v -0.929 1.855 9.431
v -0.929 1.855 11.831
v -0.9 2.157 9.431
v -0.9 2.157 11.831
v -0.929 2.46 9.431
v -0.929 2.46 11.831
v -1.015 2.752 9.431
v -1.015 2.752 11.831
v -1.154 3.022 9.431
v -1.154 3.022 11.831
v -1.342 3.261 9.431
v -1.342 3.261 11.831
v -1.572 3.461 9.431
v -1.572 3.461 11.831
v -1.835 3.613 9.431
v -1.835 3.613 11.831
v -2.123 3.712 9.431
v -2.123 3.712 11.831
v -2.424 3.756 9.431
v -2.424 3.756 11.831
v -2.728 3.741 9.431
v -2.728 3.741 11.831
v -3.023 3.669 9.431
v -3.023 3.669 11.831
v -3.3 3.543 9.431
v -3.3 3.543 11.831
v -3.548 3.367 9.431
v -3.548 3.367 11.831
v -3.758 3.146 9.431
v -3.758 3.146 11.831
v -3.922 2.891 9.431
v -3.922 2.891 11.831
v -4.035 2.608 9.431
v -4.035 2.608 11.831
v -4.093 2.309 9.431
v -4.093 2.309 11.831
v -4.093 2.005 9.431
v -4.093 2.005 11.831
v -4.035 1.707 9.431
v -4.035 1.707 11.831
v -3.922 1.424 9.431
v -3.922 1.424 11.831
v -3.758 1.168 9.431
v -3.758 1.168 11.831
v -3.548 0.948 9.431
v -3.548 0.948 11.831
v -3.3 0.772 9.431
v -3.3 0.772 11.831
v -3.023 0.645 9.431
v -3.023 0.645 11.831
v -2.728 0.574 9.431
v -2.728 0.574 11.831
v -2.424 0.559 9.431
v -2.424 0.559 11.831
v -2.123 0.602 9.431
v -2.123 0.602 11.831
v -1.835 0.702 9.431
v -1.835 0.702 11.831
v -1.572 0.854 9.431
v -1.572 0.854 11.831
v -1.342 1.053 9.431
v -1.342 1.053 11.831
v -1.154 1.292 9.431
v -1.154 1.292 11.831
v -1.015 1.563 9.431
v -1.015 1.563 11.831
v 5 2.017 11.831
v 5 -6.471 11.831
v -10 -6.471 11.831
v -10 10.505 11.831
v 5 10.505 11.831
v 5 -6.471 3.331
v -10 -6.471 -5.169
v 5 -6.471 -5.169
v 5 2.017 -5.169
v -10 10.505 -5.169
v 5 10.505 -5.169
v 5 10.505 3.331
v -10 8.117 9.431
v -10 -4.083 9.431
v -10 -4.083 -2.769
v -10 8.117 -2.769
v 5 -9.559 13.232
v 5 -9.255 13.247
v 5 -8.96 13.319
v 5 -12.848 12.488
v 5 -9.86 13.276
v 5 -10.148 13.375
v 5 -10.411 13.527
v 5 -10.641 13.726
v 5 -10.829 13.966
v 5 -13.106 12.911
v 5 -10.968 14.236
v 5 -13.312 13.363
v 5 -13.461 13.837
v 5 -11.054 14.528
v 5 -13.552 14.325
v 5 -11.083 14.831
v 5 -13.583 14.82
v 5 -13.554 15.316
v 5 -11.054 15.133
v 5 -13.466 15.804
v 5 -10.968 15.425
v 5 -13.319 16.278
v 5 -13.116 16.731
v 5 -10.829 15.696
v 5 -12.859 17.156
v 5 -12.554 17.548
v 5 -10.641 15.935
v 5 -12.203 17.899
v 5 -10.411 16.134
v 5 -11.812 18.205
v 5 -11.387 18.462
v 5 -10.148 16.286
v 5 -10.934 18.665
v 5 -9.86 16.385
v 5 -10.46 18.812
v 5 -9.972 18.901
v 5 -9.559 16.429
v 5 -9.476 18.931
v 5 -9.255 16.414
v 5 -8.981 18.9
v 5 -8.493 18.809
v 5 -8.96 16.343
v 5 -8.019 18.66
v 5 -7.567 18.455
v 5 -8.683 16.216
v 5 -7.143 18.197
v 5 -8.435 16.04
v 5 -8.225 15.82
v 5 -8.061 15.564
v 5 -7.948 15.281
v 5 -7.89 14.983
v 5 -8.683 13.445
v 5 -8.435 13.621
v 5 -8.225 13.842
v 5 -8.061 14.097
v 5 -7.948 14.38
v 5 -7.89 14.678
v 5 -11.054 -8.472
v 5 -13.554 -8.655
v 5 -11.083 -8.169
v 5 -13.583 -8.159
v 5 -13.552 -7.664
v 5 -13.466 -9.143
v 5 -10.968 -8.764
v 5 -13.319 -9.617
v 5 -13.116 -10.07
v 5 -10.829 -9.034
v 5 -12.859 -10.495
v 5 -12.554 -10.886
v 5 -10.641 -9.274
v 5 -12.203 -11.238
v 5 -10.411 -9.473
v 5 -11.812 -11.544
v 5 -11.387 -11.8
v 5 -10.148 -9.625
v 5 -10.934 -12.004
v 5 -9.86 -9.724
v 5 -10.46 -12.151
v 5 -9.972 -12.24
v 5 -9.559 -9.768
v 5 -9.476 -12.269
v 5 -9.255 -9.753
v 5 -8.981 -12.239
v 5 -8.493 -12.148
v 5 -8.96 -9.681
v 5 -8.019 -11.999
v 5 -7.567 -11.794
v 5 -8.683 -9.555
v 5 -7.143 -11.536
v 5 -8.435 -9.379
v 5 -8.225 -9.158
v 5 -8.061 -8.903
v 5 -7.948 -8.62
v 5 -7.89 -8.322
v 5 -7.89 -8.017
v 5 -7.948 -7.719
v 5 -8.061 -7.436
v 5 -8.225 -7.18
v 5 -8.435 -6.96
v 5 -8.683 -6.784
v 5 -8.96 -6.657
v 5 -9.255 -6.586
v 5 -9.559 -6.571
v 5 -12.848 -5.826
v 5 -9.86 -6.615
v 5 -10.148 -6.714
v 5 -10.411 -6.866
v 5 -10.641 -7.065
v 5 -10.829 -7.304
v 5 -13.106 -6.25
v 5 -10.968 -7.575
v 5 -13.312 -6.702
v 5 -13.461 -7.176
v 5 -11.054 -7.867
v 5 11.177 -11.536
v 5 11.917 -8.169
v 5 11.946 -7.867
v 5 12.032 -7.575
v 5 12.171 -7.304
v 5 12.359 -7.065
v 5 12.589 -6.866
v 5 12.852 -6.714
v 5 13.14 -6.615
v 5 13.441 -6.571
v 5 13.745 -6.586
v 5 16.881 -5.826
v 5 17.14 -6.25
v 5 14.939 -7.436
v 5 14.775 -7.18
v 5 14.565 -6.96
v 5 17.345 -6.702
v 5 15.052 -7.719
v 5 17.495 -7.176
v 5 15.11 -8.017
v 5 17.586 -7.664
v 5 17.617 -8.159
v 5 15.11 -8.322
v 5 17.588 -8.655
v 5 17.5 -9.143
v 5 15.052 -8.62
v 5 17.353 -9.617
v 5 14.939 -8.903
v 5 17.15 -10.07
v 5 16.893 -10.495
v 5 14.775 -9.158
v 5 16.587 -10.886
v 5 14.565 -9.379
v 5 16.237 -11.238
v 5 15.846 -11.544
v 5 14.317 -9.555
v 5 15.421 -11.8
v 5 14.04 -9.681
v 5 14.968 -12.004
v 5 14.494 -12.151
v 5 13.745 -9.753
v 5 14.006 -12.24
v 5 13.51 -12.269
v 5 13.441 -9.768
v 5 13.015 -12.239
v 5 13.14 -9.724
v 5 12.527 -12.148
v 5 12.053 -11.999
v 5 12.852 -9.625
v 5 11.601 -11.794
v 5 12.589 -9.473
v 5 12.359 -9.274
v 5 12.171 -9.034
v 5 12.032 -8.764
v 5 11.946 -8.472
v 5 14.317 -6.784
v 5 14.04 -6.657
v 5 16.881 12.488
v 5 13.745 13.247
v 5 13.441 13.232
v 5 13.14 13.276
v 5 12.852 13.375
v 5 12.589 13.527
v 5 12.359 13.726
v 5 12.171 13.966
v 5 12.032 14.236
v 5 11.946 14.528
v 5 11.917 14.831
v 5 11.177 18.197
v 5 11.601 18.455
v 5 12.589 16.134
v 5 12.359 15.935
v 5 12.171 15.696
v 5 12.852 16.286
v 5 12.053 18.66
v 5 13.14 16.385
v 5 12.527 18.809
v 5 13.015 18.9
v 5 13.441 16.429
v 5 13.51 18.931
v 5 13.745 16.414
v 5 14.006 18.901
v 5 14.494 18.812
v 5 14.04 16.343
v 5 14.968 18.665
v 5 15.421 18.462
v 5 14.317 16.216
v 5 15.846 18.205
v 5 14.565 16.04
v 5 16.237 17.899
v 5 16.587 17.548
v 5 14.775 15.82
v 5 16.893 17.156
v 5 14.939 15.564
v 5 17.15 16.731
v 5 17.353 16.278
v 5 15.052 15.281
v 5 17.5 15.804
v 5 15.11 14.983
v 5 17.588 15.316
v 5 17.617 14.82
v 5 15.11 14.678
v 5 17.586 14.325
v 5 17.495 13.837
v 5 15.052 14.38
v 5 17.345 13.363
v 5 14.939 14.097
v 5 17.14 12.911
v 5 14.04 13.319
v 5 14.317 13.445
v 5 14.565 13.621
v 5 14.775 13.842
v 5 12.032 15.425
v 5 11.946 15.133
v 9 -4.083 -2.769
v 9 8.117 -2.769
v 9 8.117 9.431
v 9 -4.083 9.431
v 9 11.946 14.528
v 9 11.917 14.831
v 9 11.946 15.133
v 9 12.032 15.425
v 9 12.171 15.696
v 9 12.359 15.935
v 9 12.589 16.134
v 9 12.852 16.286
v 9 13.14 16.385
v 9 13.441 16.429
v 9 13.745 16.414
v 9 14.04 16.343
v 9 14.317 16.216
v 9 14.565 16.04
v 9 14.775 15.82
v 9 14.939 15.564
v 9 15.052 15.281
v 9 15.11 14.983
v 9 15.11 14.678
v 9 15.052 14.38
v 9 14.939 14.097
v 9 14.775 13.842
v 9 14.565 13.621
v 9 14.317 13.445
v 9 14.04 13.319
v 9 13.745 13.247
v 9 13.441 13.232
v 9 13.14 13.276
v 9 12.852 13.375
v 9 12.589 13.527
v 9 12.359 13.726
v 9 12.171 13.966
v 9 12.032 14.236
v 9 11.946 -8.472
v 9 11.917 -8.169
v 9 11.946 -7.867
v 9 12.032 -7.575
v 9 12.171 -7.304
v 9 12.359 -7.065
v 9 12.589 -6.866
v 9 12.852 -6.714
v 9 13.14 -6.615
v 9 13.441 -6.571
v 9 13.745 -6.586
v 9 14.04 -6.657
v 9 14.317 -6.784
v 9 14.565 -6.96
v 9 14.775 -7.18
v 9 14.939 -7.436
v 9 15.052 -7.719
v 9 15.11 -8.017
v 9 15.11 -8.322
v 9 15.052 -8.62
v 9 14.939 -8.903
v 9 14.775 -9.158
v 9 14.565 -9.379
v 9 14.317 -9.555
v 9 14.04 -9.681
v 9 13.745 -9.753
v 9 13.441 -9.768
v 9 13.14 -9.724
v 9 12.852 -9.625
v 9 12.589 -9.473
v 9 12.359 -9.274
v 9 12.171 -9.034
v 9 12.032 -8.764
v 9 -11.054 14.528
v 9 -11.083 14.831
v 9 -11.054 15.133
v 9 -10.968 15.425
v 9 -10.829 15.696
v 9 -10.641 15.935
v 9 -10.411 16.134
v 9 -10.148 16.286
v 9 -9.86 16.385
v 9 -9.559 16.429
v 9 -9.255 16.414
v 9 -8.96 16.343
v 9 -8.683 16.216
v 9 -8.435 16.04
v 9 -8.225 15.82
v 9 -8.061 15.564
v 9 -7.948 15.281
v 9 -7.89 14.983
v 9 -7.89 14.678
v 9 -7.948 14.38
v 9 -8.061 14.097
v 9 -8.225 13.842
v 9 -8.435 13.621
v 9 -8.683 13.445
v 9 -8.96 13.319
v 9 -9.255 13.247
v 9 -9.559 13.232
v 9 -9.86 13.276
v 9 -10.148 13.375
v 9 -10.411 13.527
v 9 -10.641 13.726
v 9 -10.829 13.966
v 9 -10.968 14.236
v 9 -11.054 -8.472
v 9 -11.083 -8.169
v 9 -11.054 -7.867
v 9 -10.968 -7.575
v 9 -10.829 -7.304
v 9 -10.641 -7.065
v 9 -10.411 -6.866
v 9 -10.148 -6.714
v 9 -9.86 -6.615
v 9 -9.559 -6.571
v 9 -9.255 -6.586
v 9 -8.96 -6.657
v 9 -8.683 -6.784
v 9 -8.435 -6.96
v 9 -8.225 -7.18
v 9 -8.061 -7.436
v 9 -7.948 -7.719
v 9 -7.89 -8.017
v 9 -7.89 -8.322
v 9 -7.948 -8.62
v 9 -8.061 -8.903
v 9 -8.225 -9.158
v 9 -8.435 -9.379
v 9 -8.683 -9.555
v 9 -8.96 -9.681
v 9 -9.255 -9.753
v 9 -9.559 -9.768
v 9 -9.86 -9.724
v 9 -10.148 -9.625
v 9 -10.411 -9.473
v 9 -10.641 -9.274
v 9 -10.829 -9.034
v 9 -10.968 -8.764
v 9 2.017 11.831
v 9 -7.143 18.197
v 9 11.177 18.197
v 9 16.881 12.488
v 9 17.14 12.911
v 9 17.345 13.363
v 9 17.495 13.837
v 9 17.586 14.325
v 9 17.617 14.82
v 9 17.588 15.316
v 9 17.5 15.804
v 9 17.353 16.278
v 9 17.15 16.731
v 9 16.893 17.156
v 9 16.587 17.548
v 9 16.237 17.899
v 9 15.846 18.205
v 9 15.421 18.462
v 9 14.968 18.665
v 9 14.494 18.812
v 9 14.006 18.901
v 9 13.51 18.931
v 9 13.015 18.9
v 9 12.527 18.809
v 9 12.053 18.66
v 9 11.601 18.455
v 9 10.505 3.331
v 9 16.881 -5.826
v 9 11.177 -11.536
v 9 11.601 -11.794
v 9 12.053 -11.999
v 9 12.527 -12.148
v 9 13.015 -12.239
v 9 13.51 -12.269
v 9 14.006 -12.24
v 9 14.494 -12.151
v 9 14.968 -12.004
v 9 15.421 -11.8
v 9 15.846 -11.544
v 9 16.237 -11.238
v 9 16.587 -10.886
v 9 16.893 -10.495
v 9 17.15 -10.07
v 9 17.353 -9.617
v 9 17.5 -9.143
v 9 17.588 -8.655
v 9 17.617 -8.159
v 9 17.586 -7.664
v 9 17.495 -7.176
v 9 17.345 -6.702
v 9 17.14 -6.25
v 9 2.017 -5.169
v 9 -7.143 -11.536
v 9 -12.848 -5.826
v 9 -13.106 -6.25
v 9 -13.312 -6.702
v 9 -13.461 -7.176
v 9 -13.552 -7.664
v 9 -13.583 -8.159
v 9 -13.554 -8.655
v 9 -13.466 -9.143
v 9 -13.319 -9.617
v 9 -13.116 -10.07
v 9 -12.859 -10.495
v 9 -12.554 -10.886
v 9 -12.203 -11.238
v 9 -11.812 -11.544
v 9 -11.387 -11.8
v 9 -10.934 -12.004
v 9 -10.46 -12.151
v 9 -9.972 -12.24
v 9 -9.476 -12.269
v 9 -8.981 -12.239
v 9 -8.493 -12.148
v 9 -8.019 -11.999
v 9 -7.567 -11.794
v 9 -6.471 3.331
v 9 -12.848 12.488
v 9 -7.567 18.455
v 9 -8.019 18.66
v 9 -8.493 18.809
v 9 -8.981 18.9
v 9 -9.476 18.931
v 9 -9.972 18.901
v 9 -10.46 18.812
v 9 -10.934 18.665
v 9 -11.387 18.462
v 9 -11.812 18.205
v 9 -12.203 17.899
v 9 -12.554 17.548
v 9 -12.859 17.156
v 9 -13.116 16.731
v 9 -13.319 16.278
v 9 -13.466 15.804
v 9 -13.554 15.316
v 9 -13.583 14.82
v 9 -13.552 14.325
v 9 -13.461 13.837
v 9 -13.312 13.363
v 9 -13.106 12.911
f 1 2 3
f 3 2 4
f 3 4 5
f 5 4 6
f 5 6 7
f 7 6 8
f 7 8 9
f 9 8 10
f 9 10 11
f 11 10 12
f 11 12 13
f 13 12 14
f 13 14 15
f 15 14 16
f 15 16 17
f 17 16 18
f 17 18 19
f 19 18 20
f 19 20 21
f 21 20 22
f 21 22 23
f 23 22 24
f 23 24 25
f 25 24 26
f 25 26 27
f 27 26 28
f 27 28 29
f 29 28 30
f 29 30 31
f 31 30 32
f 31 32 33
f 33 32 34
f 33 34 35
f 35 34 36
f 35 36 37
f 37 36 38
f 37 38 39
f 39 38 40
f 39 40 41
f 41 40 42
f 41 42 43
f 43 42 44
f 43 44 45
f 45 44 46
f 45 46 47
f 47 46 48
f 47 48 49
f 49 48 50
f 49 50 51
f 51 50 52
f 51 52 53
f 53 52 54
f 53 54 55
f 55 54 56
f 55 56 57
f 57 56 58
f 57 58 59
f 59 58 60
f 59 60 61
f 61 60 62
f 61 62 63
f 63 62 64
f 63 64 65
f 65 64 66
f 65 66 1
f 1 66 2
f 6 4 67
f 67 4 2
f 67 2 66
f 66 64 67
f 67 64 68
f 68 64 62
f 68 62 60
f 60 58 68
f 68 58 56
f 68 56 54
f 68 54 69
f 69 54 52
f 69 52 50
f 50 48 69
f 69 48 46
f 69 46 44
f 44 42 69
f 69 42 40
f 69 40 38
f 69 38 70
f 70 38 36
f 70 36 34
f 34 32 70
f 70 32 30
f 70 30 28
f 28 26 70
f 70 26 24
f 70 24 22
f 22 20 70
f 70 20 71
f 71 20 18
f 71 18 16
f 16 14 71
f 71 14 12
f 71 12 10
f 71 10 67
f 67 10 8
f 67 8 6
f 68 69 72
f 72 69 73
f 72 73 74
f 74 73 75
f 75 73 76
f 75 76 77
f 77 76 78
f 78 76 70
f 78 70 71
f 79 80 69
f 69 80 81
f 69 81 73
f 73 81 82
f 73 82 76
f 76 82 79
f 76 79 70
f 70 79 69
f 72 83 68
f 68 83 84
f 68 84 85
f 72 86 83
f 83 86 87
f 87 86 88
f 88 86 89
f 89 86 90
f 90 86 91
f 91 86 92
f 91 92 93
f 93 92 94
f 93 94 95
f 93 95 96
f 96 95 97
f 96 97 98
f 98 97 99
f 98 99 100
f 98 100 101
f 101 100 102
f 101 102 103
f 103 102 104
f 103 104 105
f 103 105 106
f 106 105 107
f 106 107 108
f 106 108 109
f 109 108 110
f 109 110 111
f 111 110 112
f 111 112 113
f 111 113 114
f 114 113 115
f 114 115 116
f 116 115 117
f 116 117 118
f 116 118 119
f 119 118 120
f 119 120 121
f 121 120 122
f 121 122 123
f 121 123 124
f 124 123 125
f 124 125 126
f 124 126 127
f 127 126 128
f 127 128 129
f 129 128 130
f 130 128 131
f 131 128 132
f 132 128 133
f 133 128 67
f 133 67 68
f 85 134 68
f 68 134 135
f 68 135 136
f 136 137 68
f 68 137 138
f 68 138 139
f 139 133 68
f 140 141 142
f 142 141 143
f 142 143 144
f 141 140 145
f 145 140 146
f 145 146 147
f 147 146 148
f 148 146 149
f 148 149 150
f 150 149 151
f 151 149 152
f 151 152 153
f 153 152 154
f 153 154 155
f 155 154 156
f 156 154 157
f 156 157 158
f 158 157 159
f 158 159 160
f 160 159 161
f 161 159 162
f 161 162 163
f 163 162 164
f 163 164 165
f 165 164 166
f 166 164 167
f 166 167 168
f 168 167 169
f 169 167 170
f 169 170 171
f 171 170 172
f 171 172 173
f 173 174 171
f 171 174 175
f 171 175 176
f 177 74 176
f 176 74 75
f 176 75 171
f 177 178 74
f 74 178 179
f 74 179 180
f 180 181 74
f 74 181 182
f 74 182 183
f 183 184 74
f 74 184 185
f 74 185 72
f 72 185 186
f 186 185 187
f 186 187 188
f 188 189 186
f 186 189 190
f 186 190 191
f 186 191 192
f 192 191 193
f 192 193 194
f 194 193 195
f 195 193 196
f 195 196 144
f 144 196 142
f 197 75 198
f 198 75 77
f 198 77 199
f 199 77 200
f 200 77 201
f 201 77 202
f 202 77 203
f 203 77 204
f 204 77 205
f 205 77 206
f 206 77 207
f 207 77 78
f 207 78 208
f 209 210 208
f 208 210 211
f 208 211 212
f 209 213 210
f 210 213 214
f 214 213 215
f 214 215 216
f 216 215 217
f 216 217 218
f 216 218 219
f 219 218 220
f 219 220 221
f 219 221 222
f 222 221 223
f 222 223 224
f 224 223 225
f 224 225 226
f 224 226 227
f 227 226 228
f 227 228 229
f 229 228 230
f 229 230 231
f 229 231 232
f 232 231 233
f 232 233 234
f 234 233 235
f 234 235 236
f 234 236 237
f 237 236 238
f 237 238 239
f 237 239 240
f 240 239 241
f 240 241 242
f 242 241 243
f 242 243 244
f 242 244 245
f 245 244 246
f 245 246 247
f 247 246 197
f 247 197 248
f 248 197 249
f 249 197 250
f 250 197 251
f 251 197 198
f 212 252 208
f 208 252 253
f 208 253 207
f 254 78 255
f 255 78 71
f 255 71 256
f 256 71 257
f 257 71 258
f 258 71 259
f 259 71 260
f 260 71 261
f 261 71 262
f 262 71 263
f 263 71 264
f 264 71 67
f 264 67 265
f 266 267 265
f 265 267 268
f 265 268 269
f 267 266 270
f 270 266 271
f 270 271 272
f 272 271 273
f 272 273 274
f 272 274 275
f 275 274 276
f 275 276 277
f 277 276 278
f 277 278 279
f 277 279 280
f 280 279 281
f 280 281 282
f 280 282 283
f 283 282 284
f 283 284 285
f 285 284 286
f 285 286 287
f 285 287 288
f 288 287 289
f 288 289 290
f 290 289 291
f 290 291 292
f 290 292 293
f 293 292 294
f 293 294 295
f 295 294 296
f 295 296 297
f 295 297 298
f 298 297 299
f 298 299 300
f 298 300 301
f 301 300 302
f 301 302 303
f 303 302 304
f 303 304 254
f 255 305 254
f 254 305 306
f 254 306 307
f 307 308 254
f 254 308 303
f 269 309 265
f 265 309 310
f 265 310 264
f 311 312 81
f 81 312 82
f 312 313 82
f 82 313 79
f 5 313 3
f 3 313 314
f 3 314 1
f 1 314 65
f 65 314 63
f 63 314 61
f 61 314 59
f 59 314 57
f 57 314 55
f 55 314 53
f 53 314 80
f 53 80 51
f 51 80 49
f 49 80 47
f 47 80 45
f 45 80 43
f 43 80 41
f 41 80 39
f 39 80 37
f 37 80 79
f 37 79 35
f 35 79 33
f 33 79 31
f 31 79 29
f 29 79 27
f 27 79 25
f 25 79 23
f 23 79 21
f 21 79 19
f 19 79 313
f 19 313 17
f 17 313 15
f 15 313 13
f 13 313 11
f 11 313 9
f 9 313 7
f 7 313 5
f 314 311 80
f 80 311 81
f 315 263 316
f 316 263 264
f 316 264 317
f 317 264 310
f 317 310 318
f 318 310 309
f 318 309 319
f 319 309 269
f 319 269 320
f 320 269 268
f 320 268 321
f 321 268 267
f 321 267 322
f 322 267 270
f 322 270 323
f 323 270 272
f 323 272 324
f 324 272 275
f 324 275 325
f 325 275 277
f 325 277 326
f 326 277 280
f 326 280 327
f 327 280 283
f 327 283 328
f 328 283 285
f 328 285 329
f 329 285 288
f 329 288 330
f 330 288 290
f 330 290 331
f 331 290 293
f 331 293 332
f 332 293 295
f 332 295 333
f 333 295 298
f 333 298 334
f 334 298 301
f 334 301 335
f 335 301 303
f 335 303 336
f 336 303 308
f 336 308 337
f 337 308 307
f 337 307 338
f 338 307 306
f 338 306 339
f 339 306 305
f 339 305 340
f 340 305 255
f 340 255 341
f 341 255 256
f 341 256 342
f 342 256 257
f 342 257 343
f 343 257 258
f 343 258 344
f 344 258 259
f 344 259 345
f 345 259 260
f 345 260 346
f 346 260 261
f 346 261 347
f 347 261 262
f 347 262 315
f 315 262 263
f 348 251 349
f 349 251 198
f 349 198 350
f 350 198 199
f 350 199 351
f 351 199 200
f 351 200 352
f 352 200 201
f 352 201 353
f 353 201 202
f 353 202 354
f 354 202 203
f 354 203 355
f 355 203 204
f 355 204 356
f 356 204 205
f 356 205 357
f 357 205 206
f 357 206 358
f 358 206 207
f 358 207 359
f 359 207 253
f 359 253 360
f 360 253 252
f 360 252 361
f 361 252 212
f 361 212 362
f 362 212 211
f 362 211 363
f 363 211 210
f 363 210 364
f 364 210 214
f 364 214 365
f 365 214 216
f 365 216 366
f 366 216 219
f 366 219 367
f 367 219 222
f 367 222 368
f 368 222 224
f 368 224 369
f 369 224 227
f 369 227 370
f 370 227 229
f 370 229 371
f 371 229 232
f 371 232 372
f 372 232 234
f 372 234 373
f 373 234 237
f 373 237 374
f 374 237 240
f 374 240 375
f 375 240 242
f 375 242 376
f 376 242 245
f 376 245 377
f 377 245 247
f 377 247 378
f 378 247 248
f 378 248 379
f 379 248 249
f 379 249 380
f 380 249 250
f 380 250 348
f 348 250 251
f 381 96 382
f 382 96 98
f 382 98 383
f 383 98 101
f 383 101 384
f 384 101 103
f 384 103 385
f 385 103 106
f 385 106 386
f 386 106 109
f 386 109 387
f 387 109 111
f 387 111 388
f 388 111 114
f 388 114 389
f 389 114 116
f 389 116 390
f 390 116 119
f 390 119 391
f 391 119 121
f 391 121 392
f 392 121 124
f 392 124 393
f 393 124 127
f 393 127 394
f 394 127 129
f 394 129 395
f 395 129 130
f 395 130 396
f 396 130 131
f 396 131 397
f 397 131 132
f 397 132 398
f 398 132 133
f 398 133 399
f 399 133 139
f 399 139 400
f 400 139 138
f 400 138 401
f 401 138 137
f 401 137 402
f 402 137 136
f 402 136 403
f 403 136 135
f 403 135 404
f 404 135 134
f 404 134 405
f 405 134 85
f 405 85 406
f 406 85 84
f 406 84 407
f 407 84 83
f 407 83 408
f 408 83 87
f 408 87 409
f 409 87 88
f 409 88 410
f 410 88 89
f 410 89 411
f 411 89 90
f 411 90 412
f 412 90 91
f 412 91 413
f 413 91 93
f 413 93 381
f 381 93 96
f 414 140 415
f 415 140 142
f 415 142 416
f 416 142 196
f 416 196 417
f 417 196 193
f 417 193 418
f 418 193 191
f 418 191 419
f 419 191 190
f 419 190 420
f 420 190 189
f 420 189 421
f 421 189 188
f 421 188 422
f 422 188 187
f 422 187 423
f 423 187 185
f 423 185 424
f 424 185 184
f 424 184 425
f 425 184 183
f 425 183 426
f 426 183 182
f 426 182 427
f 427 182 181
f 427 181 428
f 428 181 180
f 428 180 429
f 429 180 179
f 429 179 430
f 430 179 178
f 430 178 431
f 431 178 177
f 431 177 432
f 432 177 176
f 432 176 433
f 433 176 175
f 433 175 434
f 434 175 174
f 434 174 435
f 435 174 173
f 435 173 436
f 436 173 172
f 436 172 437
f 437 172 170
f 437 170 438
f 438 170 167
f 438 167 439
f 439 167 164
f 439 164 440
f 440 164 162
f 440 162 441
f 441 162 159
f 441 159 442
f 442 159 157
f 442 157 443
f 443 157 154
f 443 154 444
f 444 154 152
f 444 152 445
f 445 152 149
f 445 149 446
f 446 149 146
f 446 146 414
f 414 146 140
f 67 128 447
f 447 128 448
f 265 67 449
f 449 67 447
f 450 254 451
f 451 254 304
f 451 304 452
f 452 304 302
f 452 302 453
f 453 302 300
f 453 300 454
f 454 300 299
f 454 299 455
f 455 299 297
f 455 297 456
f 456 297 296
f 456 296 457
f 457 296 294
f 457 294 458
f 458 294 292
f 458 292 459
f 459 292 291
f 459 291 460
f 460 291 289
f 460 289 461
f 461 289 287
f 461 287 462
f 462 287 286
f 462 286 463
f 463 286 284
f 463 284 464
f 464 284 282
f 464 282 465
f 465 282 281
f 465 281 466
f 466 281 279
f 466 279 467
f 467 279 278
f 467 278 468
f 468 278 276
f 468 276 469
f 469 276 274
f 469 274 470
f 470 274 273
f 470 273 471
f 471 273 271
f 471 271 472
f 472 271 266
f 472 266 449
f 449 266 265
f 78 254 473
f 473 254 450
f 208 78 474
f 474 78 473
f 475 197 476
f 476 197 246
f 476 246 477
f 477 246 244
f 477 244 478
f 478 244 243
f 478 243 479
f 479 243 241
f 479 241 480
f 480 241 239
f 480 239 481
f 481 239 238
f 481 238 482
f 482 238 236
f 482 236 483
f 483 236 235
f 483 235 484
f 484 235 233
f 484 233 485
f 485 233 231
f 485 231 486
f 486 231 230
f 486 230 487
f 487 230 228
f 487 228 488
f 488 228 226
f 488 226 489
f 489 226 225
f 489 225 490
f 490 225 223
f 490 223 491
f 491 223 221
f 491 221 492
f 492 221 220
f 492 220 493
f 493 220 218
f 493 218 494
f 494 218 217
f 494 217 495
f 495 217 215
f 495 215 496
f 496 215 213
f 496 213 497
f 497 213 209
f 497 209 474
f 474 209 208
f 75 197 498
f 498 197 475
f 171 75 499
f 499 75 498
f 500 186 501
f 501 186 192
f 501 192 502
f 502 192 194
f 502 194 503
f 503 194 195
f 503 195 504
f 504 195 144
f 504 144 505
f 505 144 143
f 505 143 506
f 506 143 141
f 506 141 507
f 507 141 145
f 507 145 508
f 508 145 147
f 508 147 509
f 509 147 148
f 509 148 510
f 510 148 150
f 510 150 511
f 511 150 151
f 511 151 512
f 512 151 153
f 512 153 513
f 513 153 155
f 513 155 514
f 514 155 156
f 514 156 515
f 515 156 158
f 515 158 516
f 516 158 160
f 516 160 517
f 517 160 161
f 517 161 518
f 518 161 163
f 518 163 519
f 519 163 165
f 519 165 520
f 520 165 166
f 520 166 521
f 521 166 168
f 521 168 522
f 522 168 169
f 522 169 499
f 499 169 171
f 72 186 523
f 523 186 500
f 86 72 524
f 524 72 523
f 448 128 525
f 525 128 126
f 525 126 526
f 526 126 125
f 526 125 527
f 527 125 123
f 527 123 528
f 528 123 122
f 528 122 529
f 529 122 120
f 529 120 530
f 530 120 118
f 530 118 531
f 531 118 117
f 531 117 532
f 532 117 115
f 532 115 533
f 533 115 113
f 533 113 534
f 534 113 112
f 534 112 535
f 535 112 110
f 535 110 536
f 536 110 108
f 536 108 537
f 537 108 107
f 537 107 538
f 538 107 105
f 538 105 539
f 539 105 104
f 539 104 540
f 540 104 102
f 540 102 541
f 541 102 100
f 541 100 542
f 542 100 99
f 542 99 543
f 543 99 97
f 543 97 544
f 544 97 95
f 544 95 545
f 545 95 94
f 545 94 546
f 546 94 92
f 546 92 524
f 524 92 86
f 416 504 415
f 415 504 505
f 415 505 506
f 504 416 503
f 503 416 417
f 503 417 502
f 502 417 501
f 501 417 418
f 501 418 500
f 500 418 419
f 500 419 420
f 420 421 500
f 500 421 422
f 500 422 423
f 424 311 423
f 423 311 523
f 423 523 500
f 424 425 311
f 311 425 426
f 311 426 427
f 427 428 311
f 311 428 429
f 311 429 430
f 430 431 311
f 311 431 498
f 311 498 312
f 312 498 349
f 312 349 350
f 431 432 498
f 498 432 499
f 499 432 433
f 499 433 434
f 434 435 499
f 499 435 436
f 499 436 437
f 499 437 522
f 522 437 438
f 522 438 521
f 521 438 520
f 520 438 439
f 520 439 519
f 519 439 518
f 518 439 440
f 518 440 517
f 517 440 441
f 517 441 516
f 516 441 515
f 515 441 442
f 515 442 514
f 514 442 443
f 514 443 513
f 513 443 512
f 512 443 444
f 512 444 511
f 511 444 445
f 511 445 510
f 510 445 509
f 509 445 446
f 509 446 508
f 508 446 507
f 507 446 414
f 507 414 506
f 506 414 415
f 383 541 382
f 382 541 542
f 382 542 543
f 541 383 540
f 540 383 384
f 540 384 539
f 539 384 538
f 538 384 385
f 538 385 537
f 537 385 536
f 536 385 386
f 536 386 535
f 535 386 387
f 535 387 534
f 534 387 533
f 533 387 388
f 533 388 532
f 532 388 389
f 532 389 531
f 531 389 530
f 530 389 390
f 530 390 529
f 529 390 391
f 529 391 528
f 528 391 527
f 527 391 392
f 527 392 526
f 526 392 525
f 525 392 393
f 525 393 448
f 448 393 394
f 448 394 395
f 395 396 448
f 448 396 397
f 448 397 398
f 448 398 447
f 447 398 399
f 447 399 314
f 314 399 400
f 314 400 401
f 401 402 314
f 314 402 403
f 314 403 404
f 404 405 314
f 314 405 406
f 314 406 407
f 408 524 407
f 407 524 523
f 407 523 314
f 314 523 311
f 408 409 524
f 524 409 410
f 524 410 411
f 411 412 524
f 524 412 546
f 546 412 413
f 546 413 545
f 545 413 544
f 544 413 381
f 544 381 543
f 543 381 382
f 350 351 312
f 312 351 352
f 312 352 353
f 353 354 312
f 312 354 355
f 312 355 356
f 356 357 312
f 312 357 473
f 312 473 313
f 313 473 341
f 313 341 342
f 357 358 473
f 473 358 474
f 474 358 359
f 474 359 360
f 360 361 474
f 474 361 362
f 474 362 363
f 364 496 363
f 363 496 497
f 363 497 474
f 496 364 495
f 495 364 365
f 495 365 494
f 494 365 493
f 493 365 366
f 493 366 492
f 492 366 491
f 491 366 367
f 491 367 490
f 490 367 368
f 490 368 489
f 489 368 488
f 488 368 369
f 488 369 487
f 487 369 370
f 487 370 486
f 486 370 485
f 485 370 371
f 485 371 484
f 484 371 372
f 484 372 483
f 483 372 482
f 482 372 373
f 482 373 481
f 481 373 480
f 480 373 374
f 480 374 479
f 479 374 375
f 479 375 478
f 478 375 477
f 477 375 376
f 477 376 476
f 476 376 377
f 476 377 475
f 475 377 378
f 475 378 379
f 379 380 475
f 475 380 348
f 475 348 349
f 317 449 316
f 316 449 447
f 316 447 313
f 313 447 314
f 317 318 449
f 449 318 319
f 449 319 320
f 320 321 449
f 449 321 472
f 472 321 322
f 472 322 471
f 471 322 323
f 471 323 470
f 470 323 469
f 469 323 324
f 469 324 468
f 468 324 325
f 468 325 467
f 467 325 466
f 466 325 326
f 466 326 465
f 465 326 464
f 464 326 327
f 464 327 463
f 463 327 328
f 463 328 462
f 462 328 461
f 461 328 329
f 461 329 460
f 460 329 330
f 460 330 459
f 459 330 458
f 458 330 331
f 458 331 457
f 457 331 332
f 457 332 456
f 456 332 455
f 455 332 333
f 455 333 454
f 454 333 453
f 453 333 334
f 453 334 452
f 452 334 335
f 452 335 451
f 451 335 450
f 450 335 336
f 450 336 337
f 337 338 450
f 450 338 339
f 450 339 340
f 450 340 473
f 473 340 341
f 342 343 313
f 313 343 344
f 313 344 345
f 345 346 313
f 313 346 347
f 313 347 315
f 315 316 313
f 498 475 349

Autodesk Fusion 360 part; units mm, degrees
sketch "Sketch2" plane through (5, 0, 0) normal (1, 0, 0) x (0, 1, 0)
  line L0 (16.9637, 18.2844) -> (-13.0292, -11.7227) construction
  line L1 (-12.9363, 18.2856) -> (17.0619, -11.7162) construction
  circle A0 centre (13.5169, 14.8306) radius 1.6
  circle A1 centre (-9.4831, 14.8306) radius 1.6
  circle A2 centre (-9.4831, -8.1694) radius 1.6
  circle A3 centre (13.5169, -8.1694) radius 1.6
  circle A4 centre (-9.4831, 14.8306) radius 4.1
  circle A5 centre (13.5169, 14.8306) radius 4.1
  circle A6 centre (-9.4831, -8.1694) radius 4.1
  line L2 (9.4619, 10.7862) -> (-5.5274, -4.2245) construction
  line L3 (-7.1431, 18.1972) -> (2.0169, 11.8306)
  line L4 (2.0169, 11.8306) -> (11.1769, 18.1972)
  line L5 (-12.8477, 12.4876) -> (-6.471, 3.3306)
  line L6 (-6.471, 3.3306) -> (-12.8477, -5.8265)
  line L7 (-7.1431, -11.5361) -> (2.0169, -5.1694)
  line L8 (10.5048, 3.3306) -> (16.8815, 12.4876)
  circle A7 centre (13.5169, -8.1694) radius 4.1
  line L9 (10.5048, 3.3306) -> (16.8815, -5.8265)
  line L10 (2.0169, -5.1694) -> (11.1769, -11.5361)
  line L11 (-4.0831, -2.7694) -> (8.1169, -2.7694)
  line L12 (8.1169, -2.7694) -> (8.1169, 9.4306)
  line L13 (8.1169, 9.4306) -> (-4.0831, 9.4306)
  line L14 (-4.0831, 9.4306) -> (-4.0831, -2.7694)
  line L15 (-4.0831, -2.7694) -> (8.1169, 9.4306) construction
  line L16 (8.1169, -2.7694) -> (-4.0831, 9.4306) construction
  line L17 (10.5048, 11.8306) -> (-6.471, 11.8306)
  line L18 (-6.471, 11.8306) -> (-6.471, -5.1694)
  line L19 (-6.471, -5.1694) -> (10.5048, -5.1694)
  line L20 (10.5048, -5.1694) -> (10.5048, 11.8306)
  line L21 (10.5048, 11.8306) -> (-6.471, -5.1694) construction
  line L22 (-6.471, 11.8306) -> (10.5048, -5.1694) construction
  point P0 (2.0169, 3.3306)
  point P1 (2.0169, 3.3306)
  point P2 (2.0169, 3.3306)
  point P3 (2.0169, 3.3306)
  point P4 (2.0169, 3.3306)
  dimension "d11" = 3.2
  dimension "d12" = 11.5
  dimension "d13" = 3.2
  dimension "d14" = 3.2
  dimension "d15" = 3.2
  dimension "d18" = 11.5
  dimension "d19" = 23
  dimension "d20" = 8.2
  dimension "d21" = 8.2
  dimension "d22" = 8.2
  dimension "d23" = 8.2
  dimension "d33" = 12.2
  dimension "d34" = 17
  dimension "d35" = 23
extrude "Extrude14" add sketch "Sketch2" along normal blind 5
extrude "Extrude16" add sketch "Sketch2" against normal blind 15 contours L17 L18 L19 L20
sketch "Sketch5" plane through (0, 0, 11.8306) normal (0, 0, 1) x (-1, 0, 0)
  line L0 (-5, -2.0169) -> (-5, -10.5048)
  line L1 (-5, -10.5048) -> (10, -10.5048)
  line L2 (10, -10.5048) -> (10, 6.471)
  line L3 (10, 6.471) -> (-5, 6.471)
  line L4 (-5, 6.471) -> (-5, -2.0169)
  circle A0 centre (2.5, -2.1573) radius 1.6
  circle A1 centre (2.5, -2.1573) radius 3.1
  dimension "d61" = 3.2
  dimension "d64" = 6.2
extrude "Extrude17" cut sketch "Sketch5" against normal blind 5 contours A0
move_face "MoveFace1" by (-1, 0, 0) 1 faces at (10, -3.3164, 12.0306)
extrude "Extrude18" [suppressed]
extrude "Extrude15" [suppressed]
extrude "Extrude3" [suppressed]
equation "d11 = motorScrewHole"
equation "d12 = boltDistance / 2"
equation "d13 = motorScrewHole"
equation "d14 = motorScrewHole"
equation "d15 = motorScrewHole"
equation "motorScrewHole = 3.2 mm" comment "poo"
equation "d18 = boltDistance / 2"
equation "d19 = boltDistance"
equation "d20 = motorScrewHole + 5 mm"
equation "d21 = motorScrewHole + 5 mm"
equation "d22 = motorScrewHole + 5 mm"
equation "d23 = motorScrewHole + 5 mm"
equation "d35 = boltDistance"
equation "boltDistance = 23 mm"
